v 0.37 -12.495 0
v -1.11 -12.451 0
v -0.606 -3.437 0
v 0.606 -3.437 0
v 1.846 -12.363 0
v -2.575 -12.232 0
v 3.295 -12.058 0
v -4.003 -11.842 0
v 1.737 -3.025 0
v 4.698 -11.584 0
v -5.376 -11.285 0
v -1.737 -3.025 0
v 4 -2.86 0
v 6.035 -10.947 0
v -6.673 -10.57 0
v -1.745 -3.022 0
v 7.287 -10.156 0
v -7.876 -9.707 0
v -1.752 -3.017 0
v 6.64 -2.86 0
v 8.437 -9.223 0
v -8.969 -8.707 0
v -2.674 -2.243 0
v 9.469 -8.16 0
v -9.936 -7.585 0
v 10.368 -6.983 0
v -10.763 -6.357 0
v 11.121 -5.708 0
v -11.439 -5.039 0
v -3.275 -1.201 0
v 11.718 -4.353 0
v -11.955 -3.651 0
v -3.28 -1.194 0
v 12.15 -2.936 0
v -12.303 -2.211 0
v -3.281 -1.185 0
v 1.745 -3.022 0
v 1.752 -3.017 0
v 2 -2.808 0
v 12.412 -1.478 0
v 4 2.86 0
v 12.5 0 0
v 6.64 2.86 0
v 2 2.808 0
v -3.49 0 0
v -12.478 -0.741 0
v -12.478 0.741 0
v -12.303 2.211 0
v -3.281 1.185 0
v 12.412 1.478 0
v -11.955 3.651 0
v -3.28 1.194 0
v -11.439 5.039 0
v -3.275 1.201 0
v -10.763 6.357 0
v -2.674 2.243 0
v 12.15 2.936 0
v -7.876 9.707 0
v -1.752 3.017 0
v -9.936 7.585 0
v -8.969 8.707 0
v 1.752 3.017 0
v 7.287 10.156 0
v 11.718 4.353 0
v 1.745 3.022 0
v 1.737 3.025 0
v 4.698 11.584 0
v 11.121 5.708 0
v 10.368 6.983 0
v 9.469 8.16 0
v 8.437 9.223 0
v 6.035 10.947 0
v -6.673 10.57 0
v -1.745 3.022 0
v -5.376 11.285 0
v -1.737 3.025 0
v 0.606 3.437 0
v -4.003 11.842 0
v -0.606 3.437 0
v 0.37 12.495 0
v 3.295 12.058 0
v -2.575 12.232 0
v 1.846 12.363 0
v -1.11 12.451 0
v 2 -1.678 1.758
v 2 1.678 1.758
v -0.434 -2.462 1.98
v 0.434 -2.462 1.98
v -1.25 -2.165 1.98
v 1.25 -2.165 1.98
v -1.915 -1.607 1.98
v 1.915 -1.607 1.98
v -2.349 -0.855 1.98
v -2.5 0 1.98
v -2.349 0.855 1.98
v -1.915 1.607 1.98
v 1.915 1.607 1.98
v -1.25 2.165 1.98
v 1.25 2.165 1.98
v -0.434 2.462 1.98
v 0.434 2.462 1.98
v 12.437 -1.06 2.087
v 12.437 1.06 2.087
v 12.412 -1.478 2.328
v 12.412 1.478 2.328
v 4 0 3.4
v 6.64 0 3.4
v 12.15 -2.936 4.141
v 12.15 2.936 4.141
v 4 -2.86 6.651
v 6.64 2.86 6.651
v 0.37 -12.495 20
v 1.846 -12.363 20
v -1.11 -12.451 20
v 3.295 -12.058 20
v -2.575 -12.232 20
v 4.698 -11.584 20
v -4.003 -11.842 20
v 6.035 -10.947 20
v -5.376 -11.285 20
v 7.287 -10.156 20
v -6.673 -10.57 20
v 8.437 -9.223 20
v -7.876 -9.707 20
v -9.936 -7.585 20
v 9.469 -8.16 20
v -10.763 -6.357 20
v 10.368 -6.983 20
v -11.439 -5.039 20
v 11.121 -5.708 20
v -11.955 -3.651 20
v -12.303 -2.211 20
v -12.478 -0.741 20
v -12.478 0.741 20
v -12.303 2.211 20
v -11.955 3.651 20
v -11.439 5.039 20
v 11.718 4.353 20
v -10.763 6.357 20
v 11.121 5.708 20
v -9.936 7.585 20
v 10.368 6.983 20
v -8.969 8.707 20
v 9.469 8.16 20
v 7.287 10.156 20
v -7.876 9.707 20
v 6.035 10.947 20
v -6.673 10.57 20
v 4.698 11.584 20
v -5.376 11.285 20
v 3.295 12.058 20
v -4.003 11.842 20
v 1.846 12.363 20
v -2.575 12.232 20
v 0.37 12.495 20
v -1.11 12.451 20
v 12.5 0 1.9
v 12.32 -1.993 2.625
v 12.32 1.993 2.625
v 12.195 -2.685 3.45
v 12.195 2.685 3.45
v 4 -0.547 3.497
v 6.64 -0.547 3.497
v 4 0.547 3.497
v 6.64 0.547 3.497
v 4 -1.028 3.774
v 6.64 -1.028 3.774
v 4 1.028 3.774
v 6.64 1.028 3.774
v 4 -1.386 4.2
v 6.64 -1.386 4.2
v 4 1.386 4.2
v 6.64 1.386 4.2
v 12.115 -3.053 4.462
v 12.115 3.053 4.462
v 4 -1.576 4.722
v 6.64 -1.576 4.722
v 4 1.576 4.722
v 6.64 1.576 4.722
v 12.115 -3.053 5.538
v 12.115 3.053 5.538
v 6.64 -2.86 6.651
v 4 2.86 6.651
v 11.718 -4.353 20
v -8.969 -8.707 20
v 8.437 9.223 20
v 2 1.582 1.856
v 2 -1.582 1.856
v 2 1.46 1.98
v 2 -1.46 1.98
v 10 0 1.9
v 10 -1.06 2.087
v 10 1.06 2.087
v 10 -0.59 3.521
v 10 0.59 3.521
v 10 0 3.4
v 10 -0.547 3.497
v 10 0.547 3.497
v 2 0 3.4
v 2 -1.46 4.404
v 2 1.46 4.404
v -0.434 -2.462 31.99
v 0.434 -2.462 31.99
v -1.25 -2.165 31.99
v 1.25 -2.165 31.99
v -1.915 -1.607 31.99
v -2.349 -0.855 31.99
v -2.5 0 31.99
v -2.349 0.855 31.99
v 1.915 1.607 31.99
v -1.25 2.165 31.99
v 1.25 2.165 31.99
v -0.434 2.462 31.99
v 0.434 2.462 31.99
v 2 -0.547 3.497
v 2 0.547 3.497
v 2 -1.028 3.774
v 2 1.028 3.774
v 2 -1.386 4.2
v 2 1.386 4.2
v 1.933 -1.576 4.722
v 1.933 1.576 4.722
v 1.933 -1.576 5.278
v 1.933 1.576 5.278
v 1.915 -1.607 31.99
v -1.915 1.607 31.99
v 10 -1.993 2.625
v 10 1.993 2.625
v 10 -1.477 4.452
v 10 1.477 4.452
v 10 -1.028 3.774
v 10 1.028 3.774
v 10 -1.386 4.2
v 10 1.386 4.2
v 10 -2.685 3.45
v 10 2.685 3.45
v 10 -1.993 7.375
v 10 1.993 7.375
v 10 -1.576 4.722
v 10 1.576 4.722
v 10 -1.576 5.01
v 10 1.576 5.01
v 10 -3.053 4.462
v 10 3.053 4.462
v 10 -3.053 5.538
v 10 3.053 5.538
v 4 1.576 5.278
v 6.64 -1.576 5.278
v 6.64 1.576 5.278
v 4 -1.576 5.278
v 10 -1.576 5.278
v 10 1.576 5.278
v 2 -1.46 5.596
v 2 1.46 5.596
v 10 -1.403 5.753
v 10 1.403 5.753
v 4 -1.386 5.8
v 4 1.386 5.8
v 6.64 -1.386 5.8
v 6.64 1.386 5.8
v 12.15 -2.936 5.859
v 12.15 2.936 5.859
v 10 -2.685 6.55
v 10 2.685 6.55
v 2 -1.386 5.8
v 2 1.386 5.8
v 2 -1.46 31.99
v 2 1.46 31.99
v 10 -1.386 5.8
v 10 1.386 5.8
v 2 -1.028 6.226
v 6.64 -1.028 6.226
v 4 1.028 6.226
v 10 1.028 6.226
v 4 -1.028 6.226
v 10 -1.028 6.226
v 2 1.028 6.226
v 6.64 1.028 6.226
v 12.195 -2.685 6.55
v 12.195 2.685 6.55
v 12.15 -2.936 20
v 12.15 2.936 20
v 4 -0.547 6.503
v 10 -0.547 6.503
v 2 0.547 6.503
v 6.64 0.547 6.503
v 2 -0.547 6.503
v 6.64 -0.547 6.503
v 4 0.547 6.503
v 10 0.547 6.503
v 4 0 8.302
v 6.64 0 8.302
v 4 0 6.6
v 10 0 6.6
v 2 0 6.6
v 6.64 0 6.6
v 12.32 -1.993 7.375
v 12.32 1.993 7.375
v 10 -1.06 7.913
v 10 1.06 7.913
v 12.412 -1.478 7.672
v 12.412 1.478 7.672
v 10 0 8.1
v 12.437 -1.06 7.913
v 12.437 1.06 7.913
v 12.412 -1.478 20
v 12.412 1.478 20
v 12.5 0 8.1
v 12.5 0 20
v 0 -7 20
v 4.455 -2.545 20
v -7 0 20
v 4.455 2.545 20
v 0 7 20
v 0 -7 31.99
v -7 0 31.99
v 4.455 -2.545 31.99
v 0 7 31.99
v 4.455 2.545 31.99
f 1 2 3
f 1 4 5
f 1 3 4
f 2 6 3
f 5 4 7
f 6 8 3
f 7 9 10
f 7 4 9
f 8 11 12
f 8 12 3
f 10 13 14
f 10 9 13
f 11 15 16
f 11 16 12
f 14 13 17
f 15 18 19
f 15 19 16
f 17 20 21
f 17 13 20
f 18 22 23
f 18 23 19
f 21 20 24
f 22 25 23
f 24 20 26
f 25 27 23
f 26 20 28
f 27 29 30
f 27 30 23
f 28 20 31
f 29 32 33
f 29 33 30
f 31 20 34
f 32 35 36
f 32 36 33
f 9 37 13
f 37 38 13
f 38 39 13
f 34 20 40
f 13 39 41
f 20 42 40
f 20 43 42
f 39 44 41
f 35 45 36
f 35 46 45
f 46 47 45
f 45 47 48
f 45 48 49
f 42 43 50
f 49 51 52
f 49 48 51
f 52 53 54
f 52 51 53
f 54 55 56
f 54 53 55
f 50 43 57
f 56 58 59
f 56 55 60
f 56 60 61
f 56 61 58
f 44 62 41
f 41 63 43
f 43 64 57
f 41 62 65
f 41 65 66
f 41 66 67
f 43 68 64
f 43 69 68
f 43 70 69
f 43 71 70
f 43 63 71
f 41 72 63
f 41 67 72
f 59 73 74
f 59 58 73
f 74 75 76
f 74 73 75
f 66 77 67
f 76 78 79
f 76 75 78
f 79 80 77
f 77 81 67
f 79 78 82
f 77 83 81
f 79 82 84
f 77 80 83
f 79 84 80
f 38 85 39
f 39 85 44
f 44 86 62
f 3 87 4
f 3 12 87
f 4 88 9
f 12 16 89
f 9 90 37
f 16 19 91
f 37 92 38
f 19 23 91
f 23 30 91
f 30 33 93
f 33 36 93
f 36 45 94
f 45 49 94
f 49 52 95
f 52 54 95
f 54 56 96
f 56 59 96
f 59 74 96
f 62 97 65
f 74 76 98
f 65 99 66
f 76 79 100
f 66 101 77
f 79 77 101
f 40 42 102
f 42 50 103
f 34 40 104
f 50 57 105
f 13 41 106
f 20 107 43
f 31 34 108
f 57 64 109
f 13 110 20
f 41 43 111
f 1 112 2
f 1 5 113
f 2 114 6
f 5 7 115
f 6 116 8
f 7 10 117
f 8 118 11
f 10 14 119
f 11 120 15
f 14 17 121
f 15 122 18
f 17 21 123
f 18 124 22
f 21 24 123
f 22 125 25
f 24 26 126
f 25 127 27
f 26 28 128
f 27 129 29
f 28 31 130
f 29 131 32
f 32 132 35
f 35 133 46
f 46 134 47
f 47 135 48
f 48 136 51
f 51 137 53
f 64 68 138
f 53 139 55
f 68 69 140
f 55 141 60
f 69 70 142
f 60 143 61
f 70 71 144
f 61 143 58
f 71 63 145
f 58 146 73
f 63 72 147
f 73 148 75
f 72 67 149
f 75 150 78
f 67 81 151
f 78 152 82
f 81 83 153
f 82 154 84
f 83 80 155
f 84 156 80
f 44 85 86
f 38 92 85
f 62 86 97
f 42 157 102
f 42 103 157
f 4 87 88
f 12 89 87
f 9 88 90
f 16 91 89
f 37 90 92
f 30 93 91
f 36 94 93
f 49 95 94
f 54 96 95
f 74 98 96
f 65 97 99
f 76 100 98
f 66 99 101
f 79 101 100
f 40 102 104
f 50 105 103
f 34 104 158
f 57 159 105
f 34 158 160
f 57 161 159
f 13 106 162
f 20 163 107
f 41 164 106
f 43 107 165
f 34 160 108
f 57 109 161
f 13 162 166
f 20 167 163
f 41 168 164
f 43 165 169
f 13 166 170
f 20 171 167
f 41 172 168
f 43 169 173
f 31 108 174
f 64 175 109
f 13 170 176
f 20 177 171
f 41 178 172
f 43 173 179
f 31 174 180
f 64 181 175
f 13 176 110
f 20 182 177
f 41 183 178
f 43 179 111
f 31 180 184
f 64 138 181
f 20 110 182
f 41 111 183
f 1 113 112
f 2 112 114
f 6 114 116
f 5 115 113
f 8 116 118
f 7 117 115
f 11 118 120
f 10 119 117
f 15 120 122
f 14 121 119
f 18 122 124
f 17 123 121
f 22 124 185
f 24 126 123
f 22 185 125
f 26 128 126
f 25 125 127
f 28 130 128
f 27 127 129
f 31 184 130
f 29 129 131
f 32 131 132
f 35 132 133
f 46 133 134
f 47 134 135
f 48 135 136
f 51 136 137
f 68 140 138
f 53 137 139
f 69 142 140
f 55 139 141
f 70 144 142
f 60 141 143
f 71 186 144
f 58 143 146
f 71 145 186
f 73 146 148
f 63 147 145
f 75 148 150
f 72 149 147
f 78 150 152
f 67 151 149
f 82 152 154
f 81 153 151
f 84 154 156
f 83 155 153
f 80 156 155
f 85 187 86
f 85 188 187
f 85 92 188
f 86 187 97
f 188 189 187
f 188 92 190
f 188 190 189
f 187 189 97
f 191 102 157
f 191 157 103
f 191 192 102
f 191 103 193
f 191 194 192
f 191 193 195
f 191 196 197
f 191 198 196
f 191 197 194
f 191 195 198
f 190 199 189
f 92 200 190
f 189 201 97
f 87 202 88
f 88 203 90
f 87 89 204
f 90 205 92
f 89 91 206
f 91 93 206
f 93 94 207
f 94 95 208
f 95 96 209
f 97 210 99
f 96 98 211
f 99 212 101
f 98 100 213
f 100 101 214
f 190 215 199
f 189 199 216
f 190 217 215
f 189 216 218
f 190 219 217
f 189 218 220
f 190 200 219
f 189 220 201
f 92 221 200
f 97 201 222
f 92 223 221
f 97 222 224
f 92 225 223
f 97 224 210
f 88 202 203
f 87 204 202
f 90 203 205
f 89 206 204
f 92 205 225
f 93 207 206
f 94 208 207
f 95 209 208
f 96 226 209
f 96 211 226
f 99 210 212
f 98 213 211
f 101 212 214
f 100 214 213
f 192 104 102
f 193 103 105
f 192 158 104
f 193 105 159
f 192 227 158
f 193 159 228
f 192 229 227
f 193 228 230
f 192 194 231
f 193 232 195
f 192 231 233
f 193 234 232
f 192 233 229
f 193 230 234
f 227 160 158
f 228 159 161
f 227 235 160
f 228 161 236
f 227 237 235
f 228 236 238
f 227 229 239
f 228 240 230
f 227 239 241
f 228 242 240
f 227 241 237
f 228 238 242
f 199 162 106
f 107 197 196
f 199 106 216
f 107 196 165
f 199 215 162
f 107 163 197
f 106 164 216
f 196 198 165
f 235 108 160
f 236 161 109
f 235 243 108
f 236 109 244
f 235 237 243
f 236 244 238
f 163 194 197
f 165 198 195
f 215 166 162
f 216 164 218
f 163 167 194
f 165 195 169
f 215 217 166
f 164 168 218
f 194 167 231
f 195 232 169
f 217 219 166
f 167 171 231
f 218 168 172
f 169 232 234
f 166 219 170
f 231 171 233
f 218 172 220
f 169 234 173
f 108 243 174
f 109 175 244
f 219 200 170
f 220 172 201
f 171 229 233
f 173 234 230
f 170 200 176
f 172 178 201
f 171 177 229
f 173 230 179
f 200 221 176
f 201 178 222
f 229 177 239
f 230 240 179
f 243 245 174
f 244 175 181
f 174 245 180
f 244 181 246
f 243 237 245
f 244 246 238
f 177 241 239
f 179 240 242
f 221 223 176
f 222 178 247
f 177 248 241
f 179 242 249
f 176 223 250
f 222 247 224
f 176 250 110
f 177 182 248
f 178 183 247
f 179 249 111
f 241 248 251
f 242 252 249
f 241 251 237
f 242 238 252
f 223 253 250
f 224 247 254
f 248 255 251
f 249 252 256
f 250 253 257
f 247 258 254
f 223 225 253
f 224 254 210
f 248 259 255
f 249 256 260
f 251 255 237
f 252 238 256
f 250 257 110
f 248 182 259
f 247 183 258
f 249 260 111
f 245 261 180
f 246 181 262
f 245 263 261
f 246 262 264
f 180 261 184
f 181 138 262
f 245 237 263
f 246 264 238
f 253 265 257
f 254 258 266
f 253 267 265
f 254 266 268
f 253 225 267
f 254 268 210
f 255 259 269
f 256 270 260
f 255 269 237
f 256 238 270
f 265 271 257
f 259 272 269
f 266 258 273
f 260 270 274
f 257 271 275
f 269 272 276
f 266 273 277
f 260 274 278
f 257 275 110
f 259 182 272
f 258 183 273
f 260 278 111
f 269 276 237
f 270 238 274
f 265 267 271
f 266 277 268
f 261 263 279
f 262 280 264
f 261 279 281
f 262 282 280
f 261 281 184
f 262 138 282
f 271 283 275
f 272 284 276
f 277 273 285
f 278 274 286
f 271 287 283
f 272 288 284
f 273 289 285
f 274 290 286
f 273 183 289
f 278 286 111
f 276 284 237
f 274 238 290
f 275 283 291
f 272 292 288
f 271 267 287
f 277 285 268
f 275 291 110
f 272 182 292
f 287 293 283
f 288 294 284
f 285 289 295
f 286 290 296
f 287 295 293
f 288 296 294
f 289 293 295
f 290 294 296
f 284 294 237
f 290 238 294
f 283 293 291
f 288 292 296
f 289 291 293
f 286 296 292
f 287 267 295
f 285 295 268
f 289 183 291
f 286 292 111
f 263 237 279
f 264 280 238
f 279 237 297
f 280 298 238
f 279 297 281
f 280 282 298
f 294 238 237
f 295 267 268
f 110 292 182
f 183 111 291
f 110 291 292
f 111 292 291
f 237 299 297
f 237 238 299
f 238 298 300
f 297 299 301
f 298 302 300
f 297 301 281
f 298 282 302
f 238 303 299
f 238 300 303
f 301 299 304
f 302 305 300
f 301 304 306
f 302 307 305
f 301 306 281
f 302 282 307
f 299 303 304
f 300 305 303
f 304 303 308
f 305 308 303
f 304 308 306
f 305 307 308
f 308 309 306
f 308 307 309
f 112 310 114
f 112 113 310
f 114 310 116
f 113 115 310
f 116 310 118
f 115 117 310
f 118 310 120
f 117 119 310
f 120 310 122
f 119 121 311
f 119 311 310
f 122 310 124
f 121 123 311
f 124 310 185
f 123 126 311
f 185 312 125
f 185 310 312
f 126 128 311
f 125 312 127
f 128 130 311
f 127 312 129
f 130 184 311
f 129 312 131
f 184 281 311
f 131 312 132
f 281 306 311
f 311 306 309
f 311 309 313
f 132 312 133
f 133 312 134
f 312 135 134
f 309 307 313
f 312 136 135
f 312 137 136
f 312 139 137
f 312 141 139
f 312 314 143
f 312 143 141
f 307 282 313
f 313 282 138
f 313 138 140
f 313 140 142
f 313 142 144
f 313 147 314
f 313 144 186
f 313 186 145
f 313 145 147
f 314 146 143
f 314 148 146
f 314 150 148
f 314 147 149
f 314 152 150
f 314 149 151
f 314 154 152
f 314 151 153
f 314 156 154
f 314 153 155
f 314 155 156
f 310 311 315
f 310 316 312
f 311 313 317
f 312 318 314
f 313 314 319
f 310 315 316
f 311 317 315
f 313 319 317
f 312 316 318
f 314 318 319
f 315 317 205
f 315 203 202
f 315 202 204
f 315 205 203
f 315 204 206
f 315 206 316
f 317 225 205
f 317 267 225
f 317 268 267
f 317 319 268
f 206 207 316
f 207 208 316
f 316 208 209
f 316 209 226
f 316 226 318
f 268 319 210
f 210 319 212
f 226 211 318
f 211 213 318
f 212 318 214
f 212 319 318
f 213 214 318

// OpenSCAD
include <config.scad>
use <GDMUtils.scad>
use <acme_screw.scad>
use <lifter_rod_parts.scad>

$fa=2;
$fs=1.5;


// Child 0: Top of coupler.
// Child 1: Nut slot
// Child 2: Bolt hole
module lifter_coupler() {
	h = lifter_coupler_len;
	d = lifter_rod_diam;
	shaft = motor_shaft_size;
	thread_depth = lifter_rod_pitch/3.2;
	difference() {
		union() {
			// Body
			cylinder(d=d, h=h, center=false);

			// Top tang
			up(h-0.01) zrot(90) lifter_tang(d=d-thread_depth*2-6, w=lifter_tang_width, h=lifter_tang_length);
		}

		down(0.01) {
			difference() {
				union() {
					// Shaft hole
					cylinder(h=2*h+0.02, d=shaft, center=false, $fn=18);

					// chamfer bottom of shaft hole.
					down(0.01) {
						cylinder(h=2, d1=shaft+2, d2=shaft, center=false, $fn=18);
					}
				}

				// Shaft flat side.
				if (motor_shaft_flatted) {
					right(1.4*shaft) {
						cube(size=[shaft*2, shaft*2, h*5], center=true);
					}
				}
			}
		}

		up(5) {
			right(motor_shaft_size/2+1.5) {
				// Nut Slot
				scale([1.1, 1.04, 1.04]) hull() {
					yrot(90) metric_nut(size=set_screw_size, hole=false);
					down(h/2) yrot(90) metric_nut(size=set_screw_size, hole=false);
				}

				// Set screw hole.
				left(4) yrot(90) cylinder(d=set_screw_size+printer_slop, h=30, center=false, $fn=18);

				// Screw head clearance
				right(6) yrot(90) cylinder(d=set_screw_size*2+printer_slop, h=30, center=false, $fn=18);
			}
		}
	}
	if ($children > 0) up(h) zrot(90) children(0);
	if ($children > 1) up(5) right(motor_shaft_size/2+1.5) children(1);
	if ($children > 2) up(5) right(motor_shaft_size/2+1.5+6) children(2);
}


module lifter_coupler_parts() { // make me
	lifter_coupler();
}
lifter_coupler_parts();


// vim: noexpandtab tabstop=4 shiftwidth=4 softtabstop=4 nowrap
